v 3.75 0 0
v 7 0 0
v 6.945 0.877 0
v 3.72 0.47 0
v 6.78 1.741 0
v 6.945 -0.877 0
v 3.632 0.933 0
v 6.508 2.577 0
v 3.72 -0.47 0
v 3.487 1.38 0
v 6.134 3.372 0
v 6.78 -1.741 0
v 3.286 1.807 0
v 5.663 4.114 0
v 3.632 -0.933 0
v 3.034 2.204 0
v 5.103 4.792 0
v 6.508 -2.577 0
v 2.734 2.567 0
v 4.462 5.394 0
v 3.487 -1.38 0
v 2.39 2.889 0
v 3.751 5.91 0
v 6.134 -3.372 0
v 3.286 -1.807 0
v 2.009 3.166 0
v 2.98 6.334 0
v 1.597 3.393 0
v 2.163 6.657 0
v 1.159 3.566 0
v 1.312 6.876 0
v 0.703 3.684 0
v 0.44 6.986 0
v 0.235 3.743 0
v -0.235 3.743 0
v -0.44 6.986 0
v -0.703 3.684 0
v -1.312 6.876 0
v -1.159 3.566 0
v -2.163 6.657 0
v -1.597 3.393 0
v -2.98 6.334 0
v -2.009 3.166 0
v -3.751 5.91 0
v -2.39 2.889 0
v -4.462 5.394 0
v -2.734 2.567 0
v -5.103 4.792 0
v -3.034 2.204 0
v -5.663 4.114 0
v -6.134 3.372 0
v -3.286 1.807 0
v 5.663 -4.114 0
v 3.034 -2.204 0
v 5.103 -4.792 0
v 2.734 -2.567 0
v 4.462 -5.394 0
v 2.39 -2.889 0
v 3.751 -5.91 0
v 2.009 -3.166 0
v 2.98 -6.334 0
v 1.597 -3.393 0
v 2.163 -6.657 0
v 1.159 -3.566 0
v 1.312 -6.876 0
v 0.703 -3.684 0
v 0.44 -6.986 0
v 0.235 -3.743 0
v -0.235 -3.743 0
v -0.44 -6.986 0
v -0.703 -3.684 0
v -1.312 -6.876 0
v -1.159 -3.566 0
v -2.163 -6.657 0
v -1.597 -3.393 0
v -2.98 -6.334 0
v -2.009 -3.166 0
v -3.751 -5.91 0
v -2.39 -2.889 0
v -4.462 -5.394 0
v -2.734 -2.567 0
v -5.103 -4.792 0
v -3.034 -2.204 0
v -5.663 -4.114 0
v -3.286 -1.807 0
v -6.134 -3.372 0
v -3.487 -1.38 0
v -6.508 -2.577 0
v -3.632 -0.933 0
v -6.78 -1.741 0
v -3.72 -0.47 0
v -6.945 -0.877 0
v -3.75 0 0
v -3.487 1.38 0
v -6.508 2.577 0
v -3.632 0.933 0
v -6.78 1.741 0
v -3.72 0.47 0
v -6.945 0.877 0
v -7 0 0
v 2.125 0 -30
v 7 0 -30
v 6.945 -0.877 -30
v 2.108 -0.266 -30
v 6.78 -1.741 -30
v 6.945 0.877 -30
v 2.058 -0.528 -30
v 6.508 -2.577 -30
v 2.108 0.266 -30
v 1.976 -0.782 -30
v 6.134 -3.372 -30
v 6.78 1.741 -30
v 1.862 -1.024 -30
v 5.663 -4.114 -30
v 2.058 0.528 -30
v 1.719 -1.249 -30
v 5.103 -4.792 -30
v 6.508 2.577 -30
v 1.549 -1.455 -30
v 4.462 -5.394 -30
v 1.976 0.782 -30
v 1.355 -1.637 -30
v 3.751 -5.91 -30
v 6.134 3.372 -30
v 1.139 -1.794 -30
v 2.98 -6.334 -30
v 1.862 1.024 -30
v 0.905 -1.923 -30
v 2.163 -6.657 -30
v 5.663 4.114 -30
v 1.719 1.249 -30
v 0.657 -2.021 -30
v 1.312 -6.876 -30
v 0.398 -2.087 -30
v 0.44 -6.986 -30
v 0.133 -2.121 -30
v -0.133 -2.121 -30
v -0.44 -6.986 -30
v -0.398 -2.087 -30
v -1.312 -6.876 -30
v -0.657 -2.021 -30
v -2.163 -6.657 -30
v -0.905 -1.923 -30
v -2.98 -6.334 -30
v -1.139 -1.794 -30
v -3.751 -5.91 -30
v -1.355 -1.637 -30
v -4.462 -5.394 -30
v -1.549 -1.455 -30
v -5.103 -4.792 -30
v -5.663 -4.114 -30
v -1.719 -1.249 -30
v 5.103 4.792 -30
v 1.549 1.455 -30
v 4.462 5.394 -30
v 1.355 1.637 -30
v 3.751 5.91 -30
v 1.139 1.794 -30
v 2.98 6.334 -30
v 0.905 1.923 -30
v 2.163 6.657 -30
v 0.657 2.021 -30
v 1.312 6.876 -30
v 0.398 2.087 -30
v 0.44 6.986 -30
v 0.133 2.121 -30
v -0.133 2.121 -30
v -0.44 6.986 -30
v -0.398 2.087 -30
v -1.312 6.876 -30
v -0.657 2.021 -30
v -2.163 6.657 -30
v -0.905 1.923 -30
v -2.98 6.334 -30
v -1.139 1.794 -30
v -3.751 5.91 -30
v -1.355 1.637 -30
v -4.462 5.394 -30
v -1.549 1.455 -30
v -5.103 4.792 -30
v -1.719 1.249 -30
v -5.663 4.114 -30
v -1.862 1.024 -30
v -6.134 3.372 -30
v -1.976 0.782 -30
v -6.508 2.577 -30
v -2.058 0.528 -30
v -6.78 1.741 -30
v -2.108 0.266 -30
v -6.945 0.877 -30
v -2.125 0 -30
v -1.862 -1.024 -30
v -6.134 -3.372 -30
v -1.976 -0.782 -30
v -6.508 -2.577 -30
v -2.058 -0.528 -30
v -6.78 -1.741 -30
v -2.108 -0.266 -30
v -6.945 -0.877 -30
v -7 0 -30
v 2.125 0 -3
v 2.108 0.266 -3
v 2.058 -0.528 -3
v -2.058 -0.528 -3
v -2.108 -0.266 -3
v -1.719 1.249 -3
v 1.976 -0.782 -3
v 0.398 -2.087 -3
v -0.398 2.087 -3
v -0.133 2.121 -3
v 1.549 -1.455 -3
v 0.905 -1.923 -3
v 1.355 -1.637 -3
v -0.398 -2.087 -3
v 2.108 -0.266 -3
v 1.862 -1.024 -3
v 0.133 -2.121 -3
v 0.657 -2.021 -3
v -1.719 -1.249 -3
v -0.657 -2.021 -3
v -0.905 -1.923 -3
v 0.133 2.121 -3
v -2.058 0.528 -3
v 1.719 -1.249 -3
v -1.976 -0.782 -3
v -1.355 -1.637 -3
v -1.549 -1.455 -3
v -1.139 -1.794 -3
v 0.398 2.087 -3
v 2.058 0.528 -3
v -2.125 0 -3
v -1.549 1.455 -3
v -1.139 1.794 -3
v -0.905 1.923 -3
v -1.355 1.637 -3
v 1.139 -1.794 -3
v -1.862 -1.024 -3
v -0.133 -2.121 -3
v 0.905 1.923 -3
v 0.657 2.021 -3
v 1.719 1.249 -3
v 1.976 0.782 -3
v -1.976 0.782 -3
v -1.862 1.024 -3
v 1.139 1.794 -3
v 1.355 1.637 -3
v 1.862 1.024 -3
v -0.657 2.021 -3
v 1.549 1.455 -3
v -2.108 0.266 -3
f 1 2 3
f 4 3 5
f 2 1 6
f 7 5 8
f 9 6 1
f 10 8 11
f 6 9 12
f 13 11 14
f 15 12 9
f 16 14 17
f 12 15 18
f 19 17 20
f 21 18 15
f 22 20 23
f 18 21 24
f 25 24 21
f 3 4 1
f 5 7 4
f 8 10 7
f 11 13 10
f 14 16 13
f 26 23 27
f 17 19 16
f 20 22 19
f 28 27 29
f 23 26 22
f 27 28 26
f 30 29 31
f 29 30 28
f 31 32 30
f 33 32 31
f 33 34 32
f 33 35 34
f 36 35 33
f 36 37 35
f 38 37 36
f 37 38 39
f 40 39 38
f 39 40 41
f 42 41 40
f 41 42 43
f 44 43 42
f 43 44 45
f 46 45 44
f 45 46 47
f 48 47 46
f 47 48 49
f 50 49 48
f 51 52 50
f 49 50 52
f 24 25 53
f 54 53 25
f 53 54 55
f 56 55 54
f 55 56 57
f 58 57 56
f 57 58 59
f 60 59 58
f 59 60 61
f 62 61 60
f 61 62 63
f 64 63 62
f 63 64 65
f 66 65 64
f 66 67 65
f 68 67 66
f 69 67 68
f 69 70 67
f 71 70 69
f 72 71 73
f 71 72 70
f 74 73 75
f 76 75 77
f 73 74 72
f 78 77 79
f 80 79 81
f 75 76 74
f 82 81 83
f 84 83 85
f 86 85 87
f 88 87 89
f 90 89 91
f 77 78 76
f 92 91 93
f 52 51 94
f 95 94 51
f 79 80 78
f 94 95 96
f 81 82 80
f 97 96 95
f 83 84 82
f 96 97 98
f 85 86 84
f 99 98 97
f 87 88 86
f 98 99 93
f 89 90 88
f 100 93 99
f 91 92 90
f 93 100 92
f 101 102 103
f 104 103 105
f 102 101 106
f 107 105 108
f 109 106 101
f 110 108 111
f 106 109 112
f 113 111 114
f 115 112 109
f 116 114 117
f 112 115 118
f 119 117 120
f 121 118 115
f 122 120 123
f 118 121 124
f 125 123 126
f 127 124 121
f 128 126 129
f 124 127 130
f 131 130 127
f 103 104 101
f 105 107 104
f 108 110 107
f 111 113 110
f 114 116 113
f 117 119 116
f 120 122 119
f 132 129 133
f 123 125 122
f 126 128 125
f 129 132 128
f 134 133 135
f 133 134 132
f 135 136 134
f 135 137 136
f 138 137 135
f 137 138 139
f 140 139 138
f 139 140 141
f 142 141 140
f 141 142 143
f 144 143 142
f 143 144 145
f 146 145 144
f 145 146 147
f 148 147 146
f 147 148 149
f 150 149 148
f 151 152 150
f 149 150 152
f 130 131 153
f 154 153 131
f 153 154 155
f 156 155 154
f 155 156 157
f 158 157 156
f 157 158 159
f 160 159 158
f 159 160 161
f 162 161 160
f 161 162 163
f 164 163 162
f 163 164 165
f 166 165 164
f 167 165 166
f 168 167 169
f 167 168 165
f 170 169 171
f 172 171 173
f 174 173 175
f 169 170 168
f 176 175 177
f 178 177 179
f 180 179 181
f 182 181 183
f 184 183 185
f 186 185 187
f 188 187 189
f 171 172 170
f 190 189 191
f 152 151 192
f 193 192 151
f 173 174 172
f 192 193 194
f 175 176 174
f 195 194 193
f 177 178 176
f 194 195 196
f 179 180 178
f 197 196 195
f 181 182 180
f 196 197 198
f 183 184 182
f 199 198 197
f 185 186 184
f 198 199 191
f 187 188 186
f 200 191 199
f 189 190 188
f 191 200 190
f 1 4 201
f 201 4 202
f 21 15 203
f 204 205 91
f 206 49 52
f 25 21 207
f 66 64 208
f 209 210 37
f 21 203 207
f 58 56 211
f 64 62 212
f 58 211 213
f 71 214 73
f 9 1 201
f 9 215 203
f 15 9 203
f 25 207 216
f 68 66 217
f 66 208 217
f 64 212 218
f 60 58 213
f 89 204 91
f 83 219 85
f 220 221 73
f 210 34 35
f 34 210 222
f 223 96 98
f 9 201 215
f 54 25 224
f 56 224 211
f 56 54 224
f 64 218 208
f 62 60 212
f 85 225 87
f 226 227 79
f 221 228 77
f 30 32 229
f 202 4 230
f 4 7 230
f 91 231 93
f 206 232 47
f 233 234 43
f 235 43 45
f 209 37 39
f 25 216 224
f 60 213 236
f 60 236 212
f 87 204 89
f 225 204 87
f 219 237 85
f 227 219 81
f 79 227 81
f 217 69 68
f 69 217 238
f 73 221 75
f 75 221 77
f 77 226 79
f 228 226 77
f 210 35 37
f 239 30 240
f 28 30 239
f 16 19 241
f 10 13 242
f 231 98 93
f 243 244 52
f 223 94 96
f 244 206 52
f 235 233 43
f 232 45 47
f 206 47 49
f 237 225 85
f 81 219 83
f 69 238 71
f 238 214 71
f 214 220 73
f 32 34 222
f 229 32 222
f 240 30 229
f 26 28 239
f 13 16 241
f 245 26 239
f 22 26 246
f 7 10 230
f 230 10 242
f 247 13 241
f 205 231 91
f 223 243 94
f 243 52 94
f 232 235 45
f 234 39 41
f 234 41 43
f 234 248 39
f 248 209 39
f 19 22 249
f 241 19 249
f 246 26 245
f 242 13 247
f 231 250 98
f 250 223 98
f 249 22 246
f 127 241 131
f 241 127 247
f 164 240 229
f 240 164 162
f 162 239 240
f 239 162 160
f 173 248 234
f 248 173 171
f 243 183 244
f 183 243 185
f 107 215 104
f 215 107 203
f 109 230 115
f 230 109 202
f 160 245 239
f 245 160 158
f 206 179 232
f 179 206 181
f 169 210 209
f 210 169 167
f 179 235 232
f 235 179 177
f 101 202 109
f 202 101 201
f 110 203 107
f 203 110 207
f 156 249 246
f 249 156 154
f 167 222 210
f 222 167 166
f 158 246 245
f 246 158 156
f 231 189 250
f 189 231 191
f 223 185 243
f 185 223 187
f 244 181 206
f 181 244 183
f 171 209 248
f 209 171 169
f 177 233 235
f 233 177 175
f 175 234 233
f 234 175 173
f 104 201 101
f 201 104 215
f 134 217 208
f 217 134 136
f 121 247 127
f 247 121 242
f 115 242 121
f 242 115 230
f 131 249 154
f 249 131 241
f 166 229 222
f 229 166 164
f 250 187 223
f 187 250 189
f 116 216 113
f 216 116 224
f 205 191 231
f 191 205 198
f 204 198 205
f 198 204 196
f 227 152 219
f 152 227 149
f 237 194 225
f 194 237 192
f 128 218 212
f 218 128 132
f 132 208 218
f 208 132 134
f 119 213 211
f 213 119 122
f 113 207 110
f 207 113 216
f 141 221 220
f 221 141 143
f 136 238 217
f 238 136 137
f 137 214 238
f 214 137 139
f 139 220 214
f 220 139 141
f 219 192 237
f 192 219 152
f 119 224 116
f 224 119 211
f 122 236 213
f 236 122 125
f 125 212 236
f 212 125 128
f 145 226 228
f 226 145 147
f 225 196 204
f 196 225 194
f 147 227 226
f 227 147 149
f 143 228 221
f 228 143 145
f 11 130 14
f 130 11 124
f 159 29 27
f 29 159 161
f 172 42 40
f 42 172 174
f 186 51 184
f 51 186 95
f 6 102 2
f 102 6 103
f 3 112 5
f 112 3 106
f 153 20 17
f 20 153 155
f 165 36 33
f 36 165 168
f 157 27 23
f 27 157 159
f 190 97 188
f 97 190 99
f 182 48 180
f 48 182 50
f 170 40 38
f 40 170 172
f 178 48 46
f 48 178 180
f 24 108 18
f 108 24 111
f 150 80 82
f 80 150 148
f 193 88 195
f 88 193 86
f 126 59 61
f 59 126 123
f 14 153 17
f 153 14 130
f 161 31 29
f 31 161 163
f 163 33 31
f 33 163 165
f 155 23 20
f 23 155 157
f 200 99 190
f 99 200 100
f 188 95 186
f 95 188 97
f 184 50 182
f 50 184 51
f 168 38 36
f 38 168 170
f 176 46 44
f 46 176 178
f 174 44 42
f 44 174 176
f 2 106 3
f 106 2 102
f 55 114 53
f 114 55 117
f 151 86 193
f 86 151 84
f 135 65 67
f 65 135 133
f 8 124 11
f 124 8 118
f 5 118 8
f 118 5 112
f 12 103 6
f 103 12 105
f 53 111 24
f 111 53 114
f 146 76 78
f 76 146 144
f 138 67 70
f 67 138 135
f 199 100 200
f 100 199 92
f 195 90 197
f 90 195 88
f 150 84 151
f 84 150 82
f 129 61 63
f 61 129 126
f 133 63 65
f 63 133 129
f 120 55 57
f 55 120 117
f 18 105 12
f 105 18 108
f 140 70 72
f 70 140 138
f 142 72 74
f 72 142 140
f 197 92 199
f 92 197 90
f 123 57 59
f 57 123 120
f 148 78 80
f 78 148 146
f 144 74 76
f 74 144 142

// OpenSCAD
$fn = 50;


difference() {
	union() {
		translate(v = [0, 0, -30.0000000000]) {
			cylinder(h = 30, r = 7.0000000000);
		}
		cylinder(h = 0, r = 16.0000000000);
	}
	union() {
		translate(v = [0, 0, 0]) {
			rotate(a = [0, 0, 0]) {
				difference() {
					union() {
						#translate(v = [0, 0, -30.0000000000]) {
							cylinder(h = 30, r = 2.0000000000);
						}
						#translate(v = [0, 0, -3]) {
							cylinder(h = 3, r = 7.0000000000, r1 = 2.1250000000, r2 = 3.7500000000);
						}
						#translate(v = [0, 0, -30.0000000000]) {
							cylinder(h = 30, r = 2.1250000000);
						}
						#translate(v = [0, 0, -30.0000000000]) {
							cylinder(h = 30, r = 2.0000000000);
						}
					}
					union();
				}
			}
		}
	}
}
